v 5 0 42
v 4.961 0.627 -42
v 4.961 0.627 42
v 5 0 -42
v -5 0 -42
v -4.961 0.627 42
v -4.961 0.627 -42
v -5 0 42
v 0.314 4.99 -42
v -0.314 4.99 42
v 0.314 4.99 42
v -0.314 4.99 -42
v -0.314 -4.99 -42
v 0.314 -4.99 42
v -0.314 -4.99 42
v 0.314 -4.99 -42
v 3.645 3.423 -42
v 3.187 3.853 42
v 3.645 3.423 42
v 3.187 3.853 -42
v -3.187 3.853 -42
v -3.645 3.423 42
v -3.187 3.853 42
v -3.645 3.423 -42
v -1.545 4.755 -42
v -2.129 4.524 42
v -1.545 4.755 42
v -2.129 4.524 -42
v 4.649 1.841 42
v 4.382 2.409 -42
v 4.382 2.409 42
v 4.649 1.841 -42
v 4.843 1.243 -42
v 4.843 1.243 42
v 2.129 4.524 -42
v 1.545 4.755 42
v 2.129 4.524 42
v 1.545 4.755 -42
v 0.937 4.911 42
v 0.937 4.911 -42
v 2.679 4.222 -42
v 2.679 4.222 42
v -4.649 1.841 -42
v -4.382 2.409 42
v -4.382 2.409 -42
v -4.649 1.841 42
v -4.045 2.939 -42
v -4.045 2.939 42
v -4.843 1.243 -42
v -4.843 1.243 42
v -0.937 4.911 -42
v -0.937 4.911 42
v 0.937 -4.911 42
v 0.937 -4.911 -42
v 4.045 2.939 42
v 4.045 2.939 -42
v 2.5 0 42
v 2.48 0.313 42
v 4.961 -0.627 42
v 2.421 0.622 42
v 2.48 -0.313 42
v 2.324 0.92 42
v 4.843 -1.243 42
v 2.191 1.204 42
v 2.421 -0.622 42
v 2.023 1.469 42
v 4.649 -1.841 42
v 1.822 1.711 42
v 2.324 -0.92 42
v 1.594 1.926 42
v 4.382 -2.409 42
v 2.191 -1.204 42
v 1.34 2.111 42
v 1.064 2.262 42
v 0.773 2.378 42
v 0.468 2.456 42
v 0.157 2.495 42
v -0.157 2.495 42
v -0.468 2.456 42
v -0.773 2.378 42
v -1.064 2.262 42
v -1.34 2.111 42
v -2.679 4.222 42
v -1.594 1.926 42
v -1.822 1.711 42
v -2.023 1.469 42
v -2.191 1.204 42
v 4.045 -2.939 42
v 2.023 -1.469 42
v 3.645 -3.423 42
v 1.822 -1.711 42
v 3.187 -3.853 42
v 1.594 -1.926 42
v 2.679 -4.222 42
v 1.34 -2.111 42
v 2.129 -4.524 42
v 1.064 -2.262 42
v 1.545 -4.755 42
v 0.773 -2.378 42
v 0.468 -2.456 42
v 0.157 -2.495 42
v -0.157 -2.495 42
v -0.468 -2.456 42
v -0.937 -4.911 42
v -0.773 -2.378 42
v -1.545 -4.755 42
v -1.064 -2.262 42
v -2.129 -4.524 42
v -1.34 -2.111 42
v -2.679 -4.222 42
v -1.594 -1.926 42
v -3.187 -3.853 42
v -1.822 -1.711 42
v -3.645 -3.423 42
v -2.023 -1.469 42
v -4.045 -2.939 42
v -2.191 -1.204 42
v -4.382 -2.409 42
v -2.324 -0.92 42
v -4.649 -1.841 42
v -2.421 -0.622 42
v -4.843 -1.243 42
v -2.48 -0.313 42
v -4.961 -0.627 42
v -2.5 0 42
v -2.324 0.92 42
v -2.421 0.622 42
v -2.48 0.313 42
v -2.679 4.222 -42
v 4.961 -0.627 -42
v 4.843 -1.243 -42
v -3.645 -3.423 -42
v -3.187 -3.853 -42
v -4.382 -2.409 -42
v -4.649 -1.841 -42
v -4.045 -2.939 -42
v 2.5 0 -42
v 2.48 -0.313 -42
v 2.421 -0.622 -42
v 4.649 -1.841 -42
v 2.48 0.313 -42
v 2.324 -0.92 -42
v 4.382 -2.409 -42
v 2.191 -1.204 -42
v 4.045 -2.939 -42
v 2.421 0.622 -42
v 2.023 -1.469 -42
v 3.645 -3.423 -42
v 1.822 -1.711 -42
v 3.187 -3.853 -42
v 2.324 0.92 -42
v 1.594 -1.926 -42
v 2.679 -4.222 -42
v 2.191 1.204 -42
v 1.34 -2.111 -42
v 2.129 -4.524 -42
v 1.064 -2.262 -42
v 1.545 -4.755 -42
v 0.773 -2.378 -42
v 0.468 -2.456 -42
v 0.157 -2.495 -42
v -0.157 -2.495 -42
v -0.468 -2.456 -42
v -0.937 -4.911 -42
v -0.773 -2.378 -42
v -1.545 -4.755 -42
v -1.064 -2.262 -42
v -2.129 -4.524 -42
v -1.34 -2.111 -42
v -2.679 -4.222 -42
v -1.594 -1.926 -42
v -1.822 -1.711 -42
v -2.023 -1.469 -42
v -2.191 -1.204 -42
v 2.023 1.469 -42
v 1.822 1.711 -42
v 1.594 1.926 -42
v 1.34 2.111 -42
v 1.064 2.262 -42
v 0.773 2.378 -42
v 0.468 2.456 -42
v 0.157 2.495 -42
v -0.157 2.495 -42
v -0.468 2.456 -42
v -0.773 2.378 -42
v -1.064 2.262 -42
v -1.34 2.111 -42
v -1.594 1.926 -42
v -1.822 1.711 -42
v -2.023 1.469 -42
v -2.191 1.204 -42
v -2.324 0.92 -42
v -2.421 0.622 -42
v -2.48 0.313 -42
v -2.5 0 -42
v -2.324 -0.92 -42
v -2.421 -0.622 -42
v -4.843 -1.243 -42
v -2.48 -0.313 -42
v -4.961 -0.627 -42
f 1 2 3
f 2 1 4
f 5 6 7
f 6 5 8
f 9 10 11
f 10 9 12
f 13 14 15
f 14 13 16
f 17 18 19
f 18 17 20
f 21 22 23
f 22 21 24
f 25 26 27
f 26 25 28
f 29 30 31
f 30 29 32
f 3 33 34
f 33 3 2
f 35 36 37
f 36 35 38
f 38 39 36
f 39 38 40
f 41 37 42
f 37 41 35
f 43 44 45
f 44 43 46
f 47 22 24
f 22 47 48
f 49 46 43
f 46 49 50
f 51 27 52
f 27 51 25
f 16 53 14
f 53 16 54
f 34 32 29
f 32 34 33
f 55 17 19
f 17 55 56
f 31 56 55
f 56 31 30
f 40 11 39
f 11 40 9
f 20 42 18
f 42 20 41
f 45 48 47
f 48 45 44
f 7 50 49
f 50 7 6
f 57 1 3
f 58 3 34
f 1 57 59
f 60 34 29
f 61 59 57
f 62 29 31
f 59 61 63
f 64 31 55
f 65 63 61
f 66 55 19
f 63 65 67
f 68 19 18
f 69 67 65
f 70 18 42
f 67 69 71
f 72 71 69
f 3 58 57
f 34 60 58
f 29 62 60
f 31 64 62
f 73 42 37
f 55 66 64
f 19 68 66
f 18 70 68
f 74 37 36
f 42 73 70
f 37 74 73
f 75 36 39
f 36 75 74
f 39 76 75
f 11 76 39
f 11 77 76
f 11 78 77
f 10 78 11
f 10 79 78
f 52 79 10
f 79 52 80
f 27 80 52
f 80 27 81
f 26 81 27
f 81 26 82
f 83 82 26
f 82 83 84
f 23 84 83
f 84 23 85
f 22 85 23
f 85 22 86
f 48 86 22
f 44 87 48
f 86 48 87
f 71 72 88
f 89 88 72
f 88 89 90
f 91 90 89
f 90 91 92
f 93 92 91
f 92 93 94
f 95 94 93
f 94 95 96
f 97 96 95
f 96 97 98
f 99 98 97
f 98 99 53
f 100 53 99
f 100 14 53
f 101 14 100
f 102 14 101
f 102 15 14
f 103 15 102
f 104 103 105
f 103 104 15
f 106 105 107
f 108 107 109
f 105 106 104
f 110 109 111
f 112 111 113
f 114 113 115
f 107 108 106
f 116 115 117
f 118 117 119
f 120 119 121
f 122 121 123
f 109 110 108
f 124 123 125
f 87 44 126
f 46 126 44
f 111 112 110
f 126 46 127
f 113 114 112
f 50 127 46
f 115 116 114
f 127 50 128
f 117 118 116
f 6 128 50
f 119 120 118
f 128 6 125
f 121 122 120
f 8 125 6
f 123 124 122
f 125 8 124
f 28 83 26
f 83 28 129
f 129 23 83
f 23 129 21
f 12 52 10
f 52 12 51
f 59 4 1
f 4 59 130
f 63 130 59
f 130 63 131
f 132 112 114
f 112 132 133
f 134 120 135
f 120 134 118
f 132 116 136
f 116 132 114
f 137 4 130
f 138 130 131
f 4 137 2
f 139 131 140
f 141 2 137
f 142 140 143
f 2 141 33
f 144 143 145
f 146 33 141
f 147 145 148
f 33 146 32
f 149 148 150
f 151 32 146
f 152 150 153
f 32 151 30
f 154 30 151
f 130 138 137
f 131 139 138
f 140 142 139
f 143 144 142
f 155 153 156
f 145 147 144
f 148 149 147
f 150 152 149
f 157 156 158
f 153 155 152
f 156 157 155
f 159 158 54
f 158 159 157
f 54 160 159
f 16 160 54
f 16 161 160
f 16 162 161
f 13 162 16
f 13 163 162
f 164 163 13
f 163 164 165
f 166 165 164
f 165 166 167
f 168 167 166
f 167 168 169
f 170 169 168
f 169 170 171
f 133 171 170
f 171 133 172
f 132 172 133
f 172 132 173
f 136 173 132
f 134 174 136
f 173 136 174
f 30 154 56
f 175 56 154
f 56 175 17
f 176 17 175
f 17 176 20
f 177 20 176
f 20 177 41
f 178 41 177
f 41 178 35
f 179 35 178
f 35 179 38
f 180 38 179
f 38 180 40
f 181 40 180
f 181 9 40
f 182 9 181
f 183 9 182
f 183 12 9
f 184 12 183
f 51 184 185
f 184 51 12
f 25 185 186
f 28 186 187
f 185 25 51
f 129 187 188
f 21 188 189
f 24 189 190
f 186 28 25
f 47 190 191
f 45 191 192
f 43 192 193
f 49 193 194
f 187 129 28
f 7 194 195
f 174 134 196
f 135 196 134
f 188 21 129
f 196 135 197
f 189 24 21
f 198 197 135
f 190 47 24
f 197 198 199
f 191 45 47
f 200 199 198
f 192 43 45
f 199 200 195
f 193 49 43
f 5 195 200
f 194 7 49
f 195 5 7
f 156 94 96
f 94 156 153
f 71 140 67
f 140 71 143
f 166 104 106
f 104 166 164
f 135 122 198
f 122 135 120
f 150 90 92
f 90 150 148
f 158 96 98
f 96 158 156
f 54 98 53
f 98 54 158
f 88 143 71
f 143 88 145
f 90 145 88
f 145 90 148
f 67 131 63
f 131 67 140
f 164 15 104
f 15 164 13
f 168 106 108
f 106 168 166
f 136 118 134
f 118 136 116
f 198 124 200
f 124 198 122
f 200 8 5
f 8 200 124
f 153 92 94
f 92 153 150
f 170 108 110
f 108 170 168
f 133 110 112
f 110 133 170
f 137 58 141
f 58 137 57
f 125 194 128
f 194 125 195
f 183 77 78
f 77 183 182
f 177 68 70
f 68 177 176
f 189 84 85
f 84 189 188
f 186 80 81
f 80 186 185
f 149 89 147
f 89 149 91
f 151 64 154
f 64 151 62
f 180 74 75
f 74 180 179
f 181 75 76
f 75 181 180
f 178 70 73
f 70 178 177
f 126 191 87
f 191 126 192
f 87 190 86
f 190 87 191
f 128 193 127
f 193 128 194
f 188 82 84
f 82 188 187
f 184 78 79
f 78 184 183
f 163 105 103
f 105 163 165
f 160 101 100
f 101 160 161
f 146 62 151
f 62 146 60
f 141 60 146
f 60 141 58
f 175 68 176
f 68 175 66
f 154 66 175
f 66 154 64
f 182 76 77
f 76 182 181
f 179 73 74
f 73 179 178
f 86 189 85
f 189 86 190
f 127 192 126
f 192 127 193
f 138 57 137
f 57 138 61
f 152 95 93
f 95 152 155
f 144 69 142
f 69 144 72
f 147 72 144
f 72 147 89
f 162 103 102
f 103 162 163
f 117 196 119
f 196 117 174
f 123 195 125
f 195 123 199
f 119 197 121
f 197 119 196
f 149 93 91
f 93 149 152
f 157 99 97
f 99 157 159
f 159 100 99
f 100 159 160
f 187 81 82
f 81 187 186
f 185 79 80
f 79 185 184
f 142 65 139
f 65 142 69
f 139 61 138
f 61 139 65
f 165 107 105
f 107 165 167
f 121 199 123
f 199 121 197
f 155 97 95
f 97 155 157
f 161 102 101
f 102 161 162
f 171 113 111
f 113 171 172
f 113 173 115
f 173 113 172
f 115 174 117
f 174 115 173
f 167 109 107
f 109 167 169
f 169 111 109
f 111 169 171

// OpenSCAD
$fn = 50;


difference() {
	union() {
		translate(v = [0, 0, -42.0000000000]) {
			cylinder(h = 84, r = 5.0000000000);
		}
	}
	union() {
		translate(v = [0, 0, -100.0000000000]) {
			cylinder(h = 200, r = 2.5000000000);
		}
	}
}
